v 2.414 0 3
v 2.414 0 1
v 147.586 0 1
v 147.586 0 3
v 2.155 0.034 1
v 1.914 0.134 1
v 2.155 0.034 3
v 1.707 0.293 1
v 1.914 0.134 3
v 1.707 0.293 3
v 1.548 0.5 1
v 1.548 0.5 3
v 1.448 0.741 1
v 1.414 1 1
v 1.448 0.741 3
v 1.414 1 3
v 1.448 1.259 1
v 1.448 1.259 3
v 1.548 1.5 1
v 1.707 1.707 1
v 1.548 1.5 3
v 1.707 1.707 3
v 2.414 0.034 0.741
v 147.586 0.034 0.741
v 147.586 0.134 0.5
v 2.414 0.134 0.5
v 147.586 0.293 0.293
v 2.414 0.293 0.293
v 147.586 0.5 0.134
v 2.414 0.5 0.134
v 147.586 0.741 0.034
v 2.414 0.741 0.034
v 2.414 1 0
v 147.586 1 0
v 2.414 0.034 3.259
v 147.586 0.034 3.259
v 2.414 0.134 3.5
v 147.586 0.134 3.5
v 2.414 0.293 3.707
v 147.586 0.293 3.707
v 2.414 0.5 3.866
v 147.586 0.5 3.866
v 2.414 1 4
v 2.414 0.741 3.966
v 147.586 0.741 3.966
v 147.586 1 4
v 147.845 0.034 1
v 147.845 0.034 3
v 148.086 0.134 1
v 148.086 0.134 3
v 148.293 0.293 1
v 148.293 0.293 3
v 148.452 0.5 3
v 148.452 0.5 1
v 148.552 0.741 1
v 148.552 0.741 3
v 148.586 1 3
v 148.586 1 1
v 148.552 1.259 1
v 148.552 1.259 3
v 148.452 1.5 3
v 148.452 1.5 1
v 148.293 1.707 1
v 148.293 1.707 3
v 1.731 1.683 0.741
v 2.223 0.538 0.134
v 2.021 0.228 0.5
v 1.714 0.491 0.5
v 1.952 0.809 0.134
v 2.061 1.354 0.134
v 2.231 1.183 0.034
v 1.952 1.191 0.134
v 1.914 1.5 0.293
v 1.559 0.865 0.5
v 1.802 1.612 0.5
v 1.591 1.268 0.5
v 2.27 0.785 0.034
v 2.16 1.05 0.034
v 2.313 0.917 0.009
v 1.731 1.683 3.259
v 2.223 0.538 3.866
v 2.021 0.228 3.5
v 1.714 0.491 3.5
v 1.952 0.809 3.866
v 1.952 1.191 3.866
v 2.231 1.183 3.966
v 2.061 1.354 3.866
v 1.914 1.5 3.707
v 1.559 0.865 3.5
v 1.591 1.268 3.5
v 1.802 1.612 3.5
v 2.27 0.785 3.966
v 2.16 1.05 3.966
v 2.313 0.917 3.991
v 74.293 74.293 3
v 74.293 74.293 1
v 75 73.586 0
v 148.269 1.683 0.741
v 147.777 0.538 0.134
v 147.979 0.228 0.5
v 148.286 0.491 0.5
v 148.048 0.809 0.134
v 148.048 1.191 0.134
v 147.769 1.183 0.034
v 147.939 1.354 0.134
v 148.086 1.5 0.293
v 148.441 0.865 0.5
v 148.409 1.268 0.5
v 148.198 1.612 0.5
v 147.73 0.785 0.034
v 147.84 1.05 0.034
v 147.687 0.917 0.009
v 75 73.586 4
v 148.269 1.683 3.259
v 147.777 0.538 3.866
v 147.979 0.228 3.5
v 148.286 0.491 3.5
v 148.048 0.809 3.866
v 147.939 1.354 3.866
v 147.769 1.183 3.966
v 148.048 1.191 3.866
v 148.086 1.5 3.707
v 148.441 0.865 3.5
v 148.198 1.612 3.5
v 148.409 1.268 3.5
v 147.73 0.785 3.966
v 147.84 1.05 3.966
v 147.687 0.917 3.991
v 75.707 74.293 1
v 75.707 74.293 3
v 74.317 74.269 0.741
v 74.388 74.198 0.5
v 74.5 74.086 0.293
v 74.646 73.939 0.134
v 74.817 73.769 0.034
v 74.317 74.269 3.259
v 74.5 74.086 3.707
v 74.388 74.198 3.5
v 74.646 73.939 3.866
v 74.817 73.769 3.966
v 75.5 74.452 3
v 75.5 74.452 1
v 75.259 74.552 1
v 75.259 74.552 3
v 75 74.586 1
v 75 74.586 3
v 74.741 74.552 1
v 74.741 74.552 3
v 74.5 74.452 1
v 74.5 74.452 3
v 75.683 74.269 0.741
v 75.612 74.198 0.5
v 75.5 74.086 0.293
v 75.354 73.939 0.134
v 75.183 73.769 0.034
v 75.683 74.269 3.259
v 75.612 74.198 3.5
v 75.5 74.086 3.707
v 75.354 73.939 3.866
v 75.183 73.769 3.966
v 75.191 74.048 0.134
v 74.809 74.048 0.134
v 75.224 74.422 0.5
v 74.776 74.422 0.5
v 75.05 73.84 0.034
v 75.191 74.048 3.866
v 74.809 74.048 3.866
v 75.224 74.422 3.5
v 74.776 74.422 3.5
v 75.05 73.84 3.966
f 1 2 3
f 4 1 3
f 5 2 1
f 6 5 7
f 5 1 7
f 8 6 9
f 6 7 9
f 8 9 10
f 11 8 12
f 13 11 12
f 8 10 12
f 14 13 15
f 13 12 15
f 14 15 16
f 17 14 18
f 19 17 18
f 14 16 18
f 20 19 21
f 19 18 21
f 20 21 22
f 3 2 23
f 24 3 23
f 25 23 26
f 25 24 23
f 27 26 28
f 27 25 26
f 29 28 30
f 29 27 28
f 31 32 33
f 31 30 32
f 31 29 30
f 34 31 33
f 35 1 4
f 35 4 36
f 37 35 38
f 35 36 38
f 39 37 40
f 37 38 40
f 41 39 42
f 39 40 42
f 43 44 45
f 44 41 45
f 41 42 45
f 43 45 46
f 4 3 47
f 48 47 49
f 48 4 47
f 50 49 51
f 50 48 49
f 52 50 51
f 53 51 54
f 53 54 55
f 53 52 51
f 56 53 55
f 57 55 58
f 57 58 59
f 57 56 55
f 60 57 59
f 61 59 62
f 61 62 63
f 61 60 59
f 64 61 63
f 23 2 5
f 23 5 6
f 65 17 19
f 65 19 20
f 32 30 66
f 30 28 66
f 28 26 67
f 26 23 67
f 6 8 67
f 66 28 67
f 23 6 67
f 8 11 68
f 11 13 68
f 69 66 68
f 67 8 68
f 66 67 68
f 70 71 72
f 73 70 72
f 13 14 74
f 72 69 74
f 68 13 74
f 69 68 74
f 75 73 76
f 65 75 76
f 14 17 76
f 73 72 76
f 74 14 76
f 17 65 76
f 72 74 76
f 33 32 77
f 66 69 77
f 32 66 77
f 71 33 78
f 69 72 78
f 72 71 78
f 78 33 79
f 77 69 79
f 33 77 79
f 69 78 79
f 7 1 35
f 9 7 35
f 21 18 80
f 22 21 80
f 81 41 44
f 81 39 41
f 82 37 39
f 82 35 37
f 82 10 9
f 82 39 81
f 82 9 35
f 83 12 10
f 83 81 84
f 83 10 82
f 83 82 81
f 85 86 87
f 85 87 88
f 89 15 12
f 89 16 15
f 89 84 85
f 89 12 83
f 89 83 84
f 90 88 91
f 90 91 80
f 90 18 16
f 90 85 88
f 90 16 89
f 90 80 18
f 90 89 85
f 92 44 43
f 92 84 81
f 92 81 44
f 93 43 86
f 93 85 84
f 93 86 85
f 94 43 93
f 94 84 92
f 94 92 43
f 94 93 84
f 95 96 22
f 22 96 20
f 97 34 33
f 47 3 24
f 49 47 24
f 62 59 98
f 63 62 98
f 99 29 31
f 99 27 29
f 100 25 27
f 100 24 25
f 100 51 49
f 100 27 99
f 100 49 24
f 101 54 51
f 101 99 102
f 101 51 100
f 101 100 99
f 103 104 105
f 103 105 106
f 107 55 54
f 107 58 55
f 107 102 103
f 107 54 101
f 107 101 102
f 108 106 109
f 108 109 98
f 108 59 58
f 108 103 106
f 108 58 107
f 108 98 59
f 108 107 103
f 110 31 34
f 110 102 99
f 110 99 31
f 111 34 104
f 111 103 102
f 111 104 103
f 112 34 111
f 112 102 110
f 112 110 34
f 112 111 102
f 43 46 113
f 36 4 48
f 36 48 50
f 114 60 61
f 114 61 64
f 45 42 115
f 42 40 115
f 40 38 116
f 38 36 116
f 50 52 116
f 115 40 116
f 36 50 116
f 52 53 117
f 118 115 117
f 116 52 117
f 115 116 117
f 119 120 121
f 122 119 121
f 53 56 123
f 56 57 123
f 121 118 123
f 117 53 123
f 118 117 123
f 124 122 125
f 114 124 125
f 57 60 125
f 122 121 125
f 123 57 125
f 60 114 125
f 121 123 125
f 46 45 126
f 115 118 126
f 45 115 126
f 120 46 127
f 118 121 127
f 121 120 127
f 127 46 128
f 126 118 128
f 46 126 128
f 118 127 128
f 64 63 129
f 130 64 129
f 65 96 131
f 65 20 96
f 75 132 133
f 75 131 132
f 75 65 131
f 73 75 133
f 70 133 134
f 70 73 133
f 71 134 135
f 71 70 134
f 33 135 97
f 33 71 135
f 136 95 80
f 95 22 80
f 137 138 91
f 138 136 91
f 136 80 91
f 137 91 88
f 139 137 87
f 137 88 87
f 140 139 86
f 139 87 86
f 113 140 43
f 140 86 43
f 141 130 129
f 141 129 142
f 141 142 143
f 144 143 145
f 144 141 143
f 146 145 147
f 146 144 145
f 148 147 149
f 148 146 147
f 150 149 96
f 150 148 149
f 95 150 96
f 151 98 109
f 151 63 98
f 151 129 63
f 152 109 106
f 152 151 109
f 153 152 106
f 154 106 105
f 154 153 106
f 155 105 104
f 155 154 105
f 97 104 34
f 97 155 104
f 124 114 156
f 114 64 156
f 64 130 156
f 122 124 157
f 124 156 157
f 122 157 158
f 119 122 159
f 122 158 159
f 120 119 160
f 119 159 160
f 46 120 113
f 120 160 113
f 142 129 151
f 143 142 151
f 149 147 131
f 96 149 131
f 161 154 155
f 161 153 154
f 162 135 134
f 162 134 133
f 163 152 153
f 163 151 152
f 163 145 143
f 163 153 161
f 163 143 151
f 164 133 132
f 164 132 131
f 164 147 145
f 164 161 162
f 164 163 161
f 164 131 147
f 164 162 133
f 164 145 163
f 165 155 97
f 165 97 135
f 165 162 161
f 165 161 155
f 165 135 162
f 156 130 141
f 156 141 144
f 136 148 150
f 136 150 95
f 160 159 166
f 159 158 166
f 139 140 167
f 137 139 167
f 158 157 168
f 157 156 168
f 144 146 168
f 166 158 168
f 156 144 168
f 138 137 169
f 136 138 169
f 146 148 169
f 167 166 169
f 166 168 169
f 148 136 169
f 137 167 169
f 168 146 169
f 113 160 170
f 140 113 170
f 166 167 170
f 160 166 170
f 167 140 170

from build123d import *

# Parameters (mm, degrees)
PAD_DEPTH = 4
FILLET_R  = 1


with BuildPart() as part:
    # Sketch → Pad (new body)
    with BuildSketch(Plane.XY):
        Polygon((0, 0), (150, 0), (75, 75), align=None)
    extrude(amount=PAD_DEPTH)

    # Fillet
    fillet_edges = [part.edges().sort_by_distance(p)[0] for p in [
        (0, 0, 2),
        (150, 0, 2),
        (75, 0, 0),
        (75, 0, 4),
        (75, 75, 2),
        (112.5, 37.5, 0),
        (112.5, 37.5, 4),
        (37.5, 37.5, 0),
        (37.5, 37.5, 4),
    ]]
    fillet(fillet_edges, radius=FILLET_R)


solid = part.part
